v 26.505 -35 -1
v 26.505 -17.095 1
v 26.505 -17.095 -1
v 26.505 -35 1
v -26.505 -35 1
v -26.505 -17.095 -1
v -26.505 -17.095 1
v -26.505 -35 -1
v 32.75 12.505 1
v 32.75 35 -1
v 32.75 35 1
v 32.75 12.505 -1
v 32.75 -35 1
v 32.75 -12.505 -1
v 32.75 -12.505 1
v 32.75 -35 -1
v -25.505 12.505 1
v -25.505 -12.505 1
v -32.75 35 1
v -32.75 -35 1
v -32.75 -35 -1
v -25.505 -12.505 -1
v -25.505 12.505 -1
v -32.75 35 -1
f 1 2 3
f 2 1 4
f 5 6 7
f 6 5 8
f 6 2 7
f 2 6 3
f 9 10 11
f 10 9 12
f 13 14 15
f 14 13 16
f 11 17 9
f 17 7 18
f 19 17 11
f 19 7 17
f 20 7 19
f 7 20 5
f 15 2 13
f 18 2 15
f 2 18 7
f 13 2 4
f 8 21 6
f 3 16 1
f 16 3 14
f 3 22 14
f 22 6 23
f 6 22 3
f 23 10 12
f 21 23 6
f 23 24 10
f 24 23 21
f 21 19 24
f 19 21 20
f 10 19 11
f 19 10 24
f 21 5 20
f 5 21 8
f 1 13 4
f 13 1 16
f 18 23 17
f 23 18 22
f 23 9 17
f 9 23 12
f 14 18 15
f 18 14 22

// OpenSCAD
/*
    Filename: usaft_holder.scad
    Author: Fred Kim
    Email: fred.Kim@cooper.edu
    Date: 06/17/2024
    Description: A holder for the Ready Optics USAFT
*/

$fa = 0.1;
$fs = 1;
$fn = 100;

// constant params
USAFT_length = 75;
USAFT_width = 25;
USAFT_height = 3;
target_offset = 25; // Target center is offset 25mm from short edge

holder_length = 65.5;
holder_width = 70;
holder_height = 2;

mount_length = 53;
mount_width = 12;
mount_offset = 17.1; // Edge of mount is 17.1mm from center of system

tolerance = 0.01;

module CameraMountHolder()
{
    cube([mount_length+tolerance,mount_width+tolerance,3],center=true);
    translate([0,-6,0]) cube([mount_length+tolerance,mount_width+tolerance,3],center=true);
        // Cutoff the rest of the mount for ease of mounting here ^
}

module USAFT()
{
    cube([USAFT_length+tolerance+1,USAFT_width+tolerance,USAFT_height],center=true);
}

module USAFTHolder()
{
    difference()
    {
        cube([holder_length,holder_width,holder_height],center=true);
        translate([USAFT_length/2 - target_offset,0,0]) USAFT();
        translate([0,-(mount_width/2 + mount_offset),0]) CameraMountHolder();
    }
}
USAFTHolder();
